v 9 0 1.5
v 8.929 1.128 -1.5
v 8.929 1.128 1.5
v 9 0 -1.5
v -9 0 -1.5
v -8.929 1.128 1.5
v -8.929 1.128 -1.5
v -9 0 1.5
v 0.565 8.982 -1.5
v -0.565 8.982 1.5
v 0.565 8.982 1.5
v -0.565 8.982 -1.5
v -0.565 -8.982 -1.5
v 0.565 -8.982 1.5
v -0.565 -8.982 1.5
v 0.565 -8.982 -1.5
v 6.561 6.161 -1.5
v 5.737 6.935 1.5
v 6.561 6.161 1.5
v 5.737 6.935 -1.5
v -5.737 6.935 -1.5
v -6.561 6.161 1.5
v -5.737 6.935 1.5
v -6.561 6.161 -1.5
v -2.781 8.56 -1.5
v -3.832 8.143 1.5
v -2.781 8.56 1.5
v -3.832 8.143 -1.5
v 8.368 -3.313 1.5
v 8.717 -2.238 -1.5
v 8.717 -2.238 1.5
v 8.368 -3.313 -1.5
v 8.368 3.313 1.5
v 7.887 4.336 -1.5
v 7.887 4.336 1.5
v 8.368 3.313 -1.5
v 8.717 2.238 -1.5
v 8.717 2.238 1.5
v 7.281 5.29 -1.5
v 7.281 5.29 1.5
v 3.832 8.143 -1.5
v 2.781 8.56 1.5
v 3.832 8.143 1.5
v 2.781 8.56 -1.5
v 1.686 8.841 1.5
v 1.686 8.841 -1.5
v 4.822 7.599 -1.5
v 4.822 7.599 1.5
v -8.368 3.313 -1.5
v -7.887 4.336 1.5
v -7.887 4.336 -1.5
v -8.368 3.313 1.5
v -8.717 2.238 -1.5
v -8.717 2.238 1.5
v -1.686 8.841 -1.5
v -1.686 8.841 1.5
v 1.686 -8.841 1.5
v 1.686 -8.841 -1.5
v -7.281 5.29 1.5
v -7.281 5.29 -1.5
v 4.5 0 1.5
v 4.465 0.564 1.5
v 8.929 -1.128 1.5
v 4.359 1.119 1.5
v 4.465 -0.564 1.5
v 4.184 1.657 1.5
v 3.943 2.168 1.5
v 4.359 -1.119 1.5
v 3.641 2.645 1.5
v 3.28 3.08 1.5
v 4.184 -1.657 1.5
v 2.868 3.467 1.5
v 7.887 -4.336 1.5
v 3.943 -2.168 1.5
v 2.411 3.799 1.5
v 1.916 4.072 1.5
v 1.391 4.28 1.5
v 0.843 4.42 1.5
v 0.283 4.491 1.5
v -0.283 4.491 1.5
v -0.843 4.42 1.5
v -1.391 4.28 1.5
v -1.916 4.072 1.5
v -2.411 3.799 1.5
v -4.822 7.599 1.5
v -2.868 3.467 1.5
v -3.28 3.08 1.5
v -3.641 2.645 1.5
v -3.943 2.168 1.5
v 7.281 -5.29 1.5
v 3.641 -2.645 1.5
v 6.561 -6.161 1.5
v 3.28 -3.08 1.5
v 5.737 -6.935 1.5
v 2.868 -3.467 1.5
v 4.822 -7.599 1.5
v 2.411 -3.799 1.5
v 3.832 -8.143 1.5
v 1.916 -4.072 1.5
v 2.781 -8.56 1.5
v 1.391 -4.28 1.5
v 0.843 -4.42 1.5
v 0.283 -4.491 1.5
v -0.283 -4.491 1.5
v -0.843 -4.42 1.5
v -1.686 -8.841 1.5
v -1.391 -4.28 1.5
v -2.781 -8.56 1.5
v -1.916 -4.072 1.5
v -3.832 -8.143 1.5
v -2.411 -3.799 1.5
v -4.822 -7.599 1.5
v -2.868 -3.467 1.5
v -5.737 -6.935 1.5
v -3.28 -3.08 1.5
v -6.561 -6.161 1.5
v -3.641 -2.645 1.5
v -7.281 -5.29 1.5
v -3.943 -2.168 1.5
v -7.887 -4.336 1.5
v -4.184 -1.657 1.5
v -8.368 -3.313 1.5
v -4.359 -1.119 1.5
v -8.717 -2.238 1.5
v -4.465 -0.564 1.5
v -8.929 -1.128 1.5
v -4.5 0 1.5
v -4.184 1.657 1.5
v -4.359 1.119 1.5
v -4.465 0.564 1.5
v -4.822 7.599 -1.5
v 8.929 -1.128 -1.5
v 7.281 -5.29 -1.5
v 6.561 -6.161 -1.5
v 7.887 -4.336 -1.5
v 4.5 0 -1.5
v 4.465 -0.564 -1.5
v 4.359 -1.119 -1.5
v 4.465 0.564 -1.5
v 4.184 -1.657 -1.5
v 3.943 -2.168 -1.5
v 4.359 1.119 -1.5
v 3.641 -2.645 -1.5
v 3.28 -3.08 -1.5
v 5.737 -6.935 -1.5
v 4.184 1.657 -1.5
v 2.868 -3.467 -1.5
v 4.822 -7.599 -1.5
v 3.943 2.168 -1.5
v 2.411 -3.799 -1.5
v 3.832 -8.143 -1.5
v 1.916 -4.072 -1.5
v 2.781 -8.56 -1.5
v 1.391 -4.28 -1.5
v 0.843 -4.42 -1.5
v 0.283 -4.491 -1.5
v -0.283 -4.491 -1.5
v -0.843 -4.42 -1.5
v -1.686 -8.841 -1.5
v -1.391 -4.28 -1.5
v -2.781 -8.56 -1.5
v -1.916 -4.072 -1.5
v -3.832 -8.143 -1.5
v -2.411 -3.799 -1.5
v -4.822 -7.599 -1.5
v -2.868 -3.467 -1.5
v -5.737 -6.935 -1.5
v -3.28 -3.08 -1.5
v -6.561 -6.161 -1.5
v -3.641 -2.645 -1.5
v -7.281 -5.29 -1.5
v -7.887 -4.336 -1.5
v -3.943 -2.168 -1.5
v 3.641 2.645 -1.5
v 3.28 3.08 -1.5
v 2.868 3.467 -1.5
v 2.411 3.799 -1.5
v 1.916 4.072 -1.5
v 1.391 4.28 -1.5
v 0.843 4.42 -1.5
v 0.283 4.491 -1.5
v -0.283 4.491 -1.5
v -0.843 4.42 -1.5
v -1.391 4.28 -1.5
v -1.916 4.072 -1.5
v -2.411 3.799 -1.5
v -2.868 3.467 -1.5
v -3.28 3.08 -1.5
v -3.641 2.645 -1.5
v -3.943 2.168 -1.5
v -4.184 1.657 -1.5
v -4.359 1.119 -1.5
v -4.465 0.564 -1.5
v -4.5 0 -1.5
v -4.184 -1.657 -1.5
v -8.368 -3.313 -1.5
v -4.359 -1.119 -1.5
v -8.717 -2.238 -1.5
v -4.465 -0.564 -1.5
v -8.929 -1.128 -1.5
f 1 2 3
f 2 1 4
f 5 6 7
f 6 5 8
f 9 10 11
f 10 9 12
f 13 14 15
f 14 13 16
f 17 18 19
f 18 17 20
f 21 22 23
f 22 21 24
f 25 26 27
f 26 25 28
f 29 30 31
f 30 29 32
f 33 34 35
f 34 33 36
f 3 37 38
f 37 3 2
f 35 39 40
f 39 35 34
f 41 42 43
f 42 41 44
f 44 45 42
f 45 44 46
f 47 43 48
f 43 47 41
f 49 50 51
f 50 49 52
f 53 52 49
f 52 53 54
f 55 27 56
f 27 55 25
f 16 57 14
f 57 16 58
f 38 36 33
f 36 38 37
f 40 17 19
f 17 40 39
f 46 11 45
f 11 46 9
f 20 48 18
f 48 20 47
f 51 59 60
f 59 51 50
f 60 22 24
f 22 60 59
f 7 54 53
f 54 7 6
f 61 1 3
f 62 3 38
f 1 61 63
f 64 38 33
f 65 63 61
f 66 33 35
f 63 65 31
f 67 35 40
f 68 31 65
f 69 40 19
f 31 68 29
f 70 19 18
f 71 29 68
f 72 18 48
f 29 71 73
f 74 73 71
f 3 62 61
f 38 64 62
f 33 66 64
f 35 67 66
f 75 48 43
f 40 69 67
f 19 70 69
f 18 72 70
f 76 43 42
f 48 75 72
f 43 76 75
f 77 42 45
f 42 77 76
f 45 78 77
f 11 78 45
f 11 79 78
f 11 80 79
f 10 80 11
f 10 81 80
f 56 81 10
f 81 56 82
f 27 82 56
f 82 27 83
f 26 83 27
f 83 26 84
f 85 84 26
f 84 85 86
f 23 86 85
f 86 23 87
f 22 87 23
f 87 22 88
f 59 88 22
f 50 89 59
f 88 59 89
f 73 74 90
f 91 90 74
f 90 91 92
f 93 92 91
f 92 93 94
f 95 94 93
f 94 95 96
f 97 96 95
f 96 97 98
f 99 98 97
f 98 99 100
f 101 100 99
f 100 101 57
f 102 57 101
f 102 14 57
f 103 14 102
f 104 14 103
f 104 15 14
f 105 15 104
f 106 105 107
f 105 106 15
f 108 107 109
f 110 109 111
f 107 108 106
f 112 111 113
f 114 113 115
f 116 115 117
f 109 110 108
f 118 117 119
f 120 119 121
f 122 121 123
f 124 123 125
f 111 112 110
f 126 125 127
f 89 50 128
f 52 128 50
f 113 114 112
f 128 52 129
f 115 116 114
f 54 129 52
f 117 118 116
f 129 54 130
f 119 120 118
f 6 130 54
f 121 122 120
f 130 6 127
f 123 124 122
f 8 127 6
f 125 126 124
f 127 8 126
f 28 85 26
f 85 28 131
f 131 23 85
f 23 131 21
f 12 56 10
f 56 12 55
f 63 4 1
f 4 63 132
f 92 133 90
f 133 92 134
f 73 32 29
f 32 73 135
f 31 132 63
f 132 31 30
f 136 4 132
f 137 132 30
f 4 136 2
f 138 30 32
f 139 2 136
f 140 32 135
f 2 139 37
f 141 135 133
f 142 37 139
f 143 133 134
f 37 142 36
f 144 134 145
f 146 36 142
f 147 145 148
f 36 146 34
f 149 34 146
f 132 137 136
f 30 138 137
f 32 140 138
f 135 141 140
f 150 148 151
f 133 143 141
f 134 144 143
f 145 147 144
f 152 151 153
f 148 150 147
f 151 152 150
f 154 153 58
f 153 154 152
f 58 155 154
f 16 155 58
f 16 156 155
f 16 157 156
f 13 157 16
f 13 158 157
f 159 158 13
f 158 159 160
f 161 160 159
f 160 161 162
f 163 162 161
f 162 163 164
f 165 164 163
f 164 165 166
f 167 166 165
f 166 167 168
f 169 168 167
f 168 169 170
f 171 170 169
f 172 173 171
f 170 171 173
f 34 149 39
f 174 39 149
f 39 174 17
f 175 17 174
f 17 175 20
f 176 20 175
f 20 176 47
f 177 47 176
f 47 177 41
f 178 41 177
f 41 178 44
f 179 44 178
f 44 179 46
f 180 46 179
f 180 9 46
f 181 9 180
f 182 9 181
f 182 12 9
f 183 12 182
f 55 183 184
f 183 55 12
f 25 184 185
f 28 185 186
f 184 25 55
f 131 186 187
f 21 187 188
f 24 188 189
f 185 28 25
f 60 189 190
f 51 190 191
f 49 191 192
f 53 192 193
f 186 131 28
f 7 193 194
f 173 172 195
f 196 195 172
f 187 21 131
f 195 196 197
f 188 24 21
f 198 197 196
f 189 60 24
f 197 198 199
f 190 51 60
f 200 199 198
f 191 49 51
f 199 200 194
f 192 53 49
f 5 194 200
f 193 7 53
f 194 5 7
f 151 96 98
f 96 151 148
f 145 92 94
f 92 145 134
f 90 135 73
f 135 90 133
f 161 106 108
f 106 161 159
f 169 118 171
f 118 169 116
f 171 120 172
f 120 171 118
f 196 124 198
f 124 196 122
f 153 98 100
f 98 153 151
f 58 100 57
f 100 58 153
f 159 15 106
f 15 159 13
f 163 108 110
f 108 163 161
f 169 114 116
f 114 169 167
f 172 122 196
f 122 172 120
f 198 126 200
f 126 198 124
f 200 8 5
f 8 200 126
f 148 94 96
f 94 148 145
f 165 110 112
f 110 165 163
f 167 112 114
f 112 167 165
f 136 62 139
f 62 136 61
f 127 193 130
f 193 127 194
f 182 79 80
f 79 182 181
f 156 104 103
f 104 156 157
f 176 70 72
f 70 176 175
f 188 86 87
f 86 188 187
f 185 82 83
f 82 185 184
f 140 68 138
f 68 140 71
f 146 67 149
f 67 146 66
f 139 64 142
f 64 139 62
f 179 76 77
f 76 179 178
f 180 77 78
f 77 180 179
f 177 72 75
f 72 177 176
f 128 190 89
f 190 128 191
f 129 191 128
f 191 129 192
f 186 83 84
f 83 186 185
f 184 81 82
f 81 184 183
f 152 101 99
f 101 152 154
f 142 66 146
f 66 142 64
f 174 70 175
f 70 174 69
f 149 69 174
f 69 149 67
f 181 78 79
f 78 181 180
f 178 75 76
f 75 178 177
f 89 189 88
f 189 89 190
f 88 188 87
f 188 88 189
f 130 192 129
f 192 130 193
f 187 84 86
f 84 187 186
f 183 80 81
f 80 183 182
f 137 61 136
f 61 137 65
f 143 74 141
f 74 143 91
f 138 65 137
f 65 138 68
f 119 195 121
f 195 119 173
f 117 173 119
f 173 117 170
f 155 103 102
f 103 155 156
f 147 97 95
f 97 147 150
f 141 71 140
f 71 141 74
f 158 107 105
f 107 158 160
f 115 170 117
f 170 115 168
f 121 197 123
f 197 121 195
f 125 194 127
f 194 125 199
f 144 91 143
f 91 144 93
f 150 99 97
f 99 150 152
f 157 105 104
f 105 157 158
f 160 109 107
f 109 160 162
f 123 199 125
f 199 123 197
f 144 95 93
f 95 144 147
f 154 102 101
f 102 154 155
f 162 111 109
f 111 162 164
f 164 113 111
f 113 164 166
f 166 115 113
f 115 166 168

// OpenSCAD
$fn = 50;


difference() {
	union() {
		translate(v = [0, 0, -1.5000000000]) {
			cylinder(h = 3, r = 9.0000000000);
		}
	}
	union() {
		translate(v = [0, 0, -100.0000000000]) {
			cylinder(h = 200, r = 4.5000000000);
		}
	}
}
